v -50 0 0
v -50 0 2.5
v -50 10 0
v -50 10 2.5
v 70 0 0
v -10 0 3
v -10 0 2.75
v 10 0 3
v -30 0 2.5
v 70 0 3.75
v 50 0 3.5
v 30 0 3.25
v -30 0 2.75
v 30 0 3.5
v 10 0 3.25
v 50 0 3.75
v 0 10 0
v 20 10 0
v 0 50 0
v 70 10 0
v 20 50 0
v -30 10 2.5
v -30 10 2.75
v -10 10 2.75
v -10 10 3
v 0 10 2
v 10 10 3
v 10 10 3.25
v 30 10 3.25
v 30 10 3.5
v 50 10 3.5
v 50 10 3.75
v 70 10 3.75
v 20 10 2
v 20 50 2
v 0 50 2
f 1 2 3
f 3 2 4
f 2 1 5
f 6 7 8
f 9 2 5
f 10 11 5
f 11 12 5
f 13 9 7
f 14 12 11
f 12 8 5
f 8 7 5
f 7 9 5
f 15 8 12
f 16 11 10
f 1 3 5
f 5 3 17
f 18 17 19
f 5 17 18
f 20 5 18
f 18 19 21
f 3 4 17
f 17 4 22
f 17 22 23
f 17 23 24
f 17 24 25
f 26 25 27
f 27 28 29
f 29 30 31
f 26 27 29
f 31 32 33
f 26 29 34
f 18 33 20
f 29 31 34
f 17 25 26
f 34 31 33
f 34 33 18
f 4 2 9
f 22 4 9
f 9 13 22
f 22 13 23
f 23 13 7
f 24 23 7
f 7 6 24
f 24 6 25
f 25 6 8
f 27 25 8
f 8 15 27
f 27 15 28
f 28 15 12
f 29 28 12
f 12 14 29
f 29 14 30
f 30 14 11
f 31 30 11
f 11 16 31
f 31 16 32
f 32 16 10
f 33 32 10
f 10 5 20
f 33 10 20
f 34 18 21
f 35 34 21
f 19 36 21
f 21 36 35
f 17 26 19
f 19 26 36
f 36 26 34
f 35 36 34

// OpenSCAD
cube([20,50,2]);
translate([-50,0,0]) cube([120,10,2.5]);
translate([-30,0,0]) cube([100,10,2.75]);
translate([-10,0,0]) cube([80,10,3]);
translate([10,0,0]) cube([60,10,3.25]);
translate([30,0,0]) cube([40,10,3.5]);
translate([50,0,0]) cube([20,10,3.75]);
